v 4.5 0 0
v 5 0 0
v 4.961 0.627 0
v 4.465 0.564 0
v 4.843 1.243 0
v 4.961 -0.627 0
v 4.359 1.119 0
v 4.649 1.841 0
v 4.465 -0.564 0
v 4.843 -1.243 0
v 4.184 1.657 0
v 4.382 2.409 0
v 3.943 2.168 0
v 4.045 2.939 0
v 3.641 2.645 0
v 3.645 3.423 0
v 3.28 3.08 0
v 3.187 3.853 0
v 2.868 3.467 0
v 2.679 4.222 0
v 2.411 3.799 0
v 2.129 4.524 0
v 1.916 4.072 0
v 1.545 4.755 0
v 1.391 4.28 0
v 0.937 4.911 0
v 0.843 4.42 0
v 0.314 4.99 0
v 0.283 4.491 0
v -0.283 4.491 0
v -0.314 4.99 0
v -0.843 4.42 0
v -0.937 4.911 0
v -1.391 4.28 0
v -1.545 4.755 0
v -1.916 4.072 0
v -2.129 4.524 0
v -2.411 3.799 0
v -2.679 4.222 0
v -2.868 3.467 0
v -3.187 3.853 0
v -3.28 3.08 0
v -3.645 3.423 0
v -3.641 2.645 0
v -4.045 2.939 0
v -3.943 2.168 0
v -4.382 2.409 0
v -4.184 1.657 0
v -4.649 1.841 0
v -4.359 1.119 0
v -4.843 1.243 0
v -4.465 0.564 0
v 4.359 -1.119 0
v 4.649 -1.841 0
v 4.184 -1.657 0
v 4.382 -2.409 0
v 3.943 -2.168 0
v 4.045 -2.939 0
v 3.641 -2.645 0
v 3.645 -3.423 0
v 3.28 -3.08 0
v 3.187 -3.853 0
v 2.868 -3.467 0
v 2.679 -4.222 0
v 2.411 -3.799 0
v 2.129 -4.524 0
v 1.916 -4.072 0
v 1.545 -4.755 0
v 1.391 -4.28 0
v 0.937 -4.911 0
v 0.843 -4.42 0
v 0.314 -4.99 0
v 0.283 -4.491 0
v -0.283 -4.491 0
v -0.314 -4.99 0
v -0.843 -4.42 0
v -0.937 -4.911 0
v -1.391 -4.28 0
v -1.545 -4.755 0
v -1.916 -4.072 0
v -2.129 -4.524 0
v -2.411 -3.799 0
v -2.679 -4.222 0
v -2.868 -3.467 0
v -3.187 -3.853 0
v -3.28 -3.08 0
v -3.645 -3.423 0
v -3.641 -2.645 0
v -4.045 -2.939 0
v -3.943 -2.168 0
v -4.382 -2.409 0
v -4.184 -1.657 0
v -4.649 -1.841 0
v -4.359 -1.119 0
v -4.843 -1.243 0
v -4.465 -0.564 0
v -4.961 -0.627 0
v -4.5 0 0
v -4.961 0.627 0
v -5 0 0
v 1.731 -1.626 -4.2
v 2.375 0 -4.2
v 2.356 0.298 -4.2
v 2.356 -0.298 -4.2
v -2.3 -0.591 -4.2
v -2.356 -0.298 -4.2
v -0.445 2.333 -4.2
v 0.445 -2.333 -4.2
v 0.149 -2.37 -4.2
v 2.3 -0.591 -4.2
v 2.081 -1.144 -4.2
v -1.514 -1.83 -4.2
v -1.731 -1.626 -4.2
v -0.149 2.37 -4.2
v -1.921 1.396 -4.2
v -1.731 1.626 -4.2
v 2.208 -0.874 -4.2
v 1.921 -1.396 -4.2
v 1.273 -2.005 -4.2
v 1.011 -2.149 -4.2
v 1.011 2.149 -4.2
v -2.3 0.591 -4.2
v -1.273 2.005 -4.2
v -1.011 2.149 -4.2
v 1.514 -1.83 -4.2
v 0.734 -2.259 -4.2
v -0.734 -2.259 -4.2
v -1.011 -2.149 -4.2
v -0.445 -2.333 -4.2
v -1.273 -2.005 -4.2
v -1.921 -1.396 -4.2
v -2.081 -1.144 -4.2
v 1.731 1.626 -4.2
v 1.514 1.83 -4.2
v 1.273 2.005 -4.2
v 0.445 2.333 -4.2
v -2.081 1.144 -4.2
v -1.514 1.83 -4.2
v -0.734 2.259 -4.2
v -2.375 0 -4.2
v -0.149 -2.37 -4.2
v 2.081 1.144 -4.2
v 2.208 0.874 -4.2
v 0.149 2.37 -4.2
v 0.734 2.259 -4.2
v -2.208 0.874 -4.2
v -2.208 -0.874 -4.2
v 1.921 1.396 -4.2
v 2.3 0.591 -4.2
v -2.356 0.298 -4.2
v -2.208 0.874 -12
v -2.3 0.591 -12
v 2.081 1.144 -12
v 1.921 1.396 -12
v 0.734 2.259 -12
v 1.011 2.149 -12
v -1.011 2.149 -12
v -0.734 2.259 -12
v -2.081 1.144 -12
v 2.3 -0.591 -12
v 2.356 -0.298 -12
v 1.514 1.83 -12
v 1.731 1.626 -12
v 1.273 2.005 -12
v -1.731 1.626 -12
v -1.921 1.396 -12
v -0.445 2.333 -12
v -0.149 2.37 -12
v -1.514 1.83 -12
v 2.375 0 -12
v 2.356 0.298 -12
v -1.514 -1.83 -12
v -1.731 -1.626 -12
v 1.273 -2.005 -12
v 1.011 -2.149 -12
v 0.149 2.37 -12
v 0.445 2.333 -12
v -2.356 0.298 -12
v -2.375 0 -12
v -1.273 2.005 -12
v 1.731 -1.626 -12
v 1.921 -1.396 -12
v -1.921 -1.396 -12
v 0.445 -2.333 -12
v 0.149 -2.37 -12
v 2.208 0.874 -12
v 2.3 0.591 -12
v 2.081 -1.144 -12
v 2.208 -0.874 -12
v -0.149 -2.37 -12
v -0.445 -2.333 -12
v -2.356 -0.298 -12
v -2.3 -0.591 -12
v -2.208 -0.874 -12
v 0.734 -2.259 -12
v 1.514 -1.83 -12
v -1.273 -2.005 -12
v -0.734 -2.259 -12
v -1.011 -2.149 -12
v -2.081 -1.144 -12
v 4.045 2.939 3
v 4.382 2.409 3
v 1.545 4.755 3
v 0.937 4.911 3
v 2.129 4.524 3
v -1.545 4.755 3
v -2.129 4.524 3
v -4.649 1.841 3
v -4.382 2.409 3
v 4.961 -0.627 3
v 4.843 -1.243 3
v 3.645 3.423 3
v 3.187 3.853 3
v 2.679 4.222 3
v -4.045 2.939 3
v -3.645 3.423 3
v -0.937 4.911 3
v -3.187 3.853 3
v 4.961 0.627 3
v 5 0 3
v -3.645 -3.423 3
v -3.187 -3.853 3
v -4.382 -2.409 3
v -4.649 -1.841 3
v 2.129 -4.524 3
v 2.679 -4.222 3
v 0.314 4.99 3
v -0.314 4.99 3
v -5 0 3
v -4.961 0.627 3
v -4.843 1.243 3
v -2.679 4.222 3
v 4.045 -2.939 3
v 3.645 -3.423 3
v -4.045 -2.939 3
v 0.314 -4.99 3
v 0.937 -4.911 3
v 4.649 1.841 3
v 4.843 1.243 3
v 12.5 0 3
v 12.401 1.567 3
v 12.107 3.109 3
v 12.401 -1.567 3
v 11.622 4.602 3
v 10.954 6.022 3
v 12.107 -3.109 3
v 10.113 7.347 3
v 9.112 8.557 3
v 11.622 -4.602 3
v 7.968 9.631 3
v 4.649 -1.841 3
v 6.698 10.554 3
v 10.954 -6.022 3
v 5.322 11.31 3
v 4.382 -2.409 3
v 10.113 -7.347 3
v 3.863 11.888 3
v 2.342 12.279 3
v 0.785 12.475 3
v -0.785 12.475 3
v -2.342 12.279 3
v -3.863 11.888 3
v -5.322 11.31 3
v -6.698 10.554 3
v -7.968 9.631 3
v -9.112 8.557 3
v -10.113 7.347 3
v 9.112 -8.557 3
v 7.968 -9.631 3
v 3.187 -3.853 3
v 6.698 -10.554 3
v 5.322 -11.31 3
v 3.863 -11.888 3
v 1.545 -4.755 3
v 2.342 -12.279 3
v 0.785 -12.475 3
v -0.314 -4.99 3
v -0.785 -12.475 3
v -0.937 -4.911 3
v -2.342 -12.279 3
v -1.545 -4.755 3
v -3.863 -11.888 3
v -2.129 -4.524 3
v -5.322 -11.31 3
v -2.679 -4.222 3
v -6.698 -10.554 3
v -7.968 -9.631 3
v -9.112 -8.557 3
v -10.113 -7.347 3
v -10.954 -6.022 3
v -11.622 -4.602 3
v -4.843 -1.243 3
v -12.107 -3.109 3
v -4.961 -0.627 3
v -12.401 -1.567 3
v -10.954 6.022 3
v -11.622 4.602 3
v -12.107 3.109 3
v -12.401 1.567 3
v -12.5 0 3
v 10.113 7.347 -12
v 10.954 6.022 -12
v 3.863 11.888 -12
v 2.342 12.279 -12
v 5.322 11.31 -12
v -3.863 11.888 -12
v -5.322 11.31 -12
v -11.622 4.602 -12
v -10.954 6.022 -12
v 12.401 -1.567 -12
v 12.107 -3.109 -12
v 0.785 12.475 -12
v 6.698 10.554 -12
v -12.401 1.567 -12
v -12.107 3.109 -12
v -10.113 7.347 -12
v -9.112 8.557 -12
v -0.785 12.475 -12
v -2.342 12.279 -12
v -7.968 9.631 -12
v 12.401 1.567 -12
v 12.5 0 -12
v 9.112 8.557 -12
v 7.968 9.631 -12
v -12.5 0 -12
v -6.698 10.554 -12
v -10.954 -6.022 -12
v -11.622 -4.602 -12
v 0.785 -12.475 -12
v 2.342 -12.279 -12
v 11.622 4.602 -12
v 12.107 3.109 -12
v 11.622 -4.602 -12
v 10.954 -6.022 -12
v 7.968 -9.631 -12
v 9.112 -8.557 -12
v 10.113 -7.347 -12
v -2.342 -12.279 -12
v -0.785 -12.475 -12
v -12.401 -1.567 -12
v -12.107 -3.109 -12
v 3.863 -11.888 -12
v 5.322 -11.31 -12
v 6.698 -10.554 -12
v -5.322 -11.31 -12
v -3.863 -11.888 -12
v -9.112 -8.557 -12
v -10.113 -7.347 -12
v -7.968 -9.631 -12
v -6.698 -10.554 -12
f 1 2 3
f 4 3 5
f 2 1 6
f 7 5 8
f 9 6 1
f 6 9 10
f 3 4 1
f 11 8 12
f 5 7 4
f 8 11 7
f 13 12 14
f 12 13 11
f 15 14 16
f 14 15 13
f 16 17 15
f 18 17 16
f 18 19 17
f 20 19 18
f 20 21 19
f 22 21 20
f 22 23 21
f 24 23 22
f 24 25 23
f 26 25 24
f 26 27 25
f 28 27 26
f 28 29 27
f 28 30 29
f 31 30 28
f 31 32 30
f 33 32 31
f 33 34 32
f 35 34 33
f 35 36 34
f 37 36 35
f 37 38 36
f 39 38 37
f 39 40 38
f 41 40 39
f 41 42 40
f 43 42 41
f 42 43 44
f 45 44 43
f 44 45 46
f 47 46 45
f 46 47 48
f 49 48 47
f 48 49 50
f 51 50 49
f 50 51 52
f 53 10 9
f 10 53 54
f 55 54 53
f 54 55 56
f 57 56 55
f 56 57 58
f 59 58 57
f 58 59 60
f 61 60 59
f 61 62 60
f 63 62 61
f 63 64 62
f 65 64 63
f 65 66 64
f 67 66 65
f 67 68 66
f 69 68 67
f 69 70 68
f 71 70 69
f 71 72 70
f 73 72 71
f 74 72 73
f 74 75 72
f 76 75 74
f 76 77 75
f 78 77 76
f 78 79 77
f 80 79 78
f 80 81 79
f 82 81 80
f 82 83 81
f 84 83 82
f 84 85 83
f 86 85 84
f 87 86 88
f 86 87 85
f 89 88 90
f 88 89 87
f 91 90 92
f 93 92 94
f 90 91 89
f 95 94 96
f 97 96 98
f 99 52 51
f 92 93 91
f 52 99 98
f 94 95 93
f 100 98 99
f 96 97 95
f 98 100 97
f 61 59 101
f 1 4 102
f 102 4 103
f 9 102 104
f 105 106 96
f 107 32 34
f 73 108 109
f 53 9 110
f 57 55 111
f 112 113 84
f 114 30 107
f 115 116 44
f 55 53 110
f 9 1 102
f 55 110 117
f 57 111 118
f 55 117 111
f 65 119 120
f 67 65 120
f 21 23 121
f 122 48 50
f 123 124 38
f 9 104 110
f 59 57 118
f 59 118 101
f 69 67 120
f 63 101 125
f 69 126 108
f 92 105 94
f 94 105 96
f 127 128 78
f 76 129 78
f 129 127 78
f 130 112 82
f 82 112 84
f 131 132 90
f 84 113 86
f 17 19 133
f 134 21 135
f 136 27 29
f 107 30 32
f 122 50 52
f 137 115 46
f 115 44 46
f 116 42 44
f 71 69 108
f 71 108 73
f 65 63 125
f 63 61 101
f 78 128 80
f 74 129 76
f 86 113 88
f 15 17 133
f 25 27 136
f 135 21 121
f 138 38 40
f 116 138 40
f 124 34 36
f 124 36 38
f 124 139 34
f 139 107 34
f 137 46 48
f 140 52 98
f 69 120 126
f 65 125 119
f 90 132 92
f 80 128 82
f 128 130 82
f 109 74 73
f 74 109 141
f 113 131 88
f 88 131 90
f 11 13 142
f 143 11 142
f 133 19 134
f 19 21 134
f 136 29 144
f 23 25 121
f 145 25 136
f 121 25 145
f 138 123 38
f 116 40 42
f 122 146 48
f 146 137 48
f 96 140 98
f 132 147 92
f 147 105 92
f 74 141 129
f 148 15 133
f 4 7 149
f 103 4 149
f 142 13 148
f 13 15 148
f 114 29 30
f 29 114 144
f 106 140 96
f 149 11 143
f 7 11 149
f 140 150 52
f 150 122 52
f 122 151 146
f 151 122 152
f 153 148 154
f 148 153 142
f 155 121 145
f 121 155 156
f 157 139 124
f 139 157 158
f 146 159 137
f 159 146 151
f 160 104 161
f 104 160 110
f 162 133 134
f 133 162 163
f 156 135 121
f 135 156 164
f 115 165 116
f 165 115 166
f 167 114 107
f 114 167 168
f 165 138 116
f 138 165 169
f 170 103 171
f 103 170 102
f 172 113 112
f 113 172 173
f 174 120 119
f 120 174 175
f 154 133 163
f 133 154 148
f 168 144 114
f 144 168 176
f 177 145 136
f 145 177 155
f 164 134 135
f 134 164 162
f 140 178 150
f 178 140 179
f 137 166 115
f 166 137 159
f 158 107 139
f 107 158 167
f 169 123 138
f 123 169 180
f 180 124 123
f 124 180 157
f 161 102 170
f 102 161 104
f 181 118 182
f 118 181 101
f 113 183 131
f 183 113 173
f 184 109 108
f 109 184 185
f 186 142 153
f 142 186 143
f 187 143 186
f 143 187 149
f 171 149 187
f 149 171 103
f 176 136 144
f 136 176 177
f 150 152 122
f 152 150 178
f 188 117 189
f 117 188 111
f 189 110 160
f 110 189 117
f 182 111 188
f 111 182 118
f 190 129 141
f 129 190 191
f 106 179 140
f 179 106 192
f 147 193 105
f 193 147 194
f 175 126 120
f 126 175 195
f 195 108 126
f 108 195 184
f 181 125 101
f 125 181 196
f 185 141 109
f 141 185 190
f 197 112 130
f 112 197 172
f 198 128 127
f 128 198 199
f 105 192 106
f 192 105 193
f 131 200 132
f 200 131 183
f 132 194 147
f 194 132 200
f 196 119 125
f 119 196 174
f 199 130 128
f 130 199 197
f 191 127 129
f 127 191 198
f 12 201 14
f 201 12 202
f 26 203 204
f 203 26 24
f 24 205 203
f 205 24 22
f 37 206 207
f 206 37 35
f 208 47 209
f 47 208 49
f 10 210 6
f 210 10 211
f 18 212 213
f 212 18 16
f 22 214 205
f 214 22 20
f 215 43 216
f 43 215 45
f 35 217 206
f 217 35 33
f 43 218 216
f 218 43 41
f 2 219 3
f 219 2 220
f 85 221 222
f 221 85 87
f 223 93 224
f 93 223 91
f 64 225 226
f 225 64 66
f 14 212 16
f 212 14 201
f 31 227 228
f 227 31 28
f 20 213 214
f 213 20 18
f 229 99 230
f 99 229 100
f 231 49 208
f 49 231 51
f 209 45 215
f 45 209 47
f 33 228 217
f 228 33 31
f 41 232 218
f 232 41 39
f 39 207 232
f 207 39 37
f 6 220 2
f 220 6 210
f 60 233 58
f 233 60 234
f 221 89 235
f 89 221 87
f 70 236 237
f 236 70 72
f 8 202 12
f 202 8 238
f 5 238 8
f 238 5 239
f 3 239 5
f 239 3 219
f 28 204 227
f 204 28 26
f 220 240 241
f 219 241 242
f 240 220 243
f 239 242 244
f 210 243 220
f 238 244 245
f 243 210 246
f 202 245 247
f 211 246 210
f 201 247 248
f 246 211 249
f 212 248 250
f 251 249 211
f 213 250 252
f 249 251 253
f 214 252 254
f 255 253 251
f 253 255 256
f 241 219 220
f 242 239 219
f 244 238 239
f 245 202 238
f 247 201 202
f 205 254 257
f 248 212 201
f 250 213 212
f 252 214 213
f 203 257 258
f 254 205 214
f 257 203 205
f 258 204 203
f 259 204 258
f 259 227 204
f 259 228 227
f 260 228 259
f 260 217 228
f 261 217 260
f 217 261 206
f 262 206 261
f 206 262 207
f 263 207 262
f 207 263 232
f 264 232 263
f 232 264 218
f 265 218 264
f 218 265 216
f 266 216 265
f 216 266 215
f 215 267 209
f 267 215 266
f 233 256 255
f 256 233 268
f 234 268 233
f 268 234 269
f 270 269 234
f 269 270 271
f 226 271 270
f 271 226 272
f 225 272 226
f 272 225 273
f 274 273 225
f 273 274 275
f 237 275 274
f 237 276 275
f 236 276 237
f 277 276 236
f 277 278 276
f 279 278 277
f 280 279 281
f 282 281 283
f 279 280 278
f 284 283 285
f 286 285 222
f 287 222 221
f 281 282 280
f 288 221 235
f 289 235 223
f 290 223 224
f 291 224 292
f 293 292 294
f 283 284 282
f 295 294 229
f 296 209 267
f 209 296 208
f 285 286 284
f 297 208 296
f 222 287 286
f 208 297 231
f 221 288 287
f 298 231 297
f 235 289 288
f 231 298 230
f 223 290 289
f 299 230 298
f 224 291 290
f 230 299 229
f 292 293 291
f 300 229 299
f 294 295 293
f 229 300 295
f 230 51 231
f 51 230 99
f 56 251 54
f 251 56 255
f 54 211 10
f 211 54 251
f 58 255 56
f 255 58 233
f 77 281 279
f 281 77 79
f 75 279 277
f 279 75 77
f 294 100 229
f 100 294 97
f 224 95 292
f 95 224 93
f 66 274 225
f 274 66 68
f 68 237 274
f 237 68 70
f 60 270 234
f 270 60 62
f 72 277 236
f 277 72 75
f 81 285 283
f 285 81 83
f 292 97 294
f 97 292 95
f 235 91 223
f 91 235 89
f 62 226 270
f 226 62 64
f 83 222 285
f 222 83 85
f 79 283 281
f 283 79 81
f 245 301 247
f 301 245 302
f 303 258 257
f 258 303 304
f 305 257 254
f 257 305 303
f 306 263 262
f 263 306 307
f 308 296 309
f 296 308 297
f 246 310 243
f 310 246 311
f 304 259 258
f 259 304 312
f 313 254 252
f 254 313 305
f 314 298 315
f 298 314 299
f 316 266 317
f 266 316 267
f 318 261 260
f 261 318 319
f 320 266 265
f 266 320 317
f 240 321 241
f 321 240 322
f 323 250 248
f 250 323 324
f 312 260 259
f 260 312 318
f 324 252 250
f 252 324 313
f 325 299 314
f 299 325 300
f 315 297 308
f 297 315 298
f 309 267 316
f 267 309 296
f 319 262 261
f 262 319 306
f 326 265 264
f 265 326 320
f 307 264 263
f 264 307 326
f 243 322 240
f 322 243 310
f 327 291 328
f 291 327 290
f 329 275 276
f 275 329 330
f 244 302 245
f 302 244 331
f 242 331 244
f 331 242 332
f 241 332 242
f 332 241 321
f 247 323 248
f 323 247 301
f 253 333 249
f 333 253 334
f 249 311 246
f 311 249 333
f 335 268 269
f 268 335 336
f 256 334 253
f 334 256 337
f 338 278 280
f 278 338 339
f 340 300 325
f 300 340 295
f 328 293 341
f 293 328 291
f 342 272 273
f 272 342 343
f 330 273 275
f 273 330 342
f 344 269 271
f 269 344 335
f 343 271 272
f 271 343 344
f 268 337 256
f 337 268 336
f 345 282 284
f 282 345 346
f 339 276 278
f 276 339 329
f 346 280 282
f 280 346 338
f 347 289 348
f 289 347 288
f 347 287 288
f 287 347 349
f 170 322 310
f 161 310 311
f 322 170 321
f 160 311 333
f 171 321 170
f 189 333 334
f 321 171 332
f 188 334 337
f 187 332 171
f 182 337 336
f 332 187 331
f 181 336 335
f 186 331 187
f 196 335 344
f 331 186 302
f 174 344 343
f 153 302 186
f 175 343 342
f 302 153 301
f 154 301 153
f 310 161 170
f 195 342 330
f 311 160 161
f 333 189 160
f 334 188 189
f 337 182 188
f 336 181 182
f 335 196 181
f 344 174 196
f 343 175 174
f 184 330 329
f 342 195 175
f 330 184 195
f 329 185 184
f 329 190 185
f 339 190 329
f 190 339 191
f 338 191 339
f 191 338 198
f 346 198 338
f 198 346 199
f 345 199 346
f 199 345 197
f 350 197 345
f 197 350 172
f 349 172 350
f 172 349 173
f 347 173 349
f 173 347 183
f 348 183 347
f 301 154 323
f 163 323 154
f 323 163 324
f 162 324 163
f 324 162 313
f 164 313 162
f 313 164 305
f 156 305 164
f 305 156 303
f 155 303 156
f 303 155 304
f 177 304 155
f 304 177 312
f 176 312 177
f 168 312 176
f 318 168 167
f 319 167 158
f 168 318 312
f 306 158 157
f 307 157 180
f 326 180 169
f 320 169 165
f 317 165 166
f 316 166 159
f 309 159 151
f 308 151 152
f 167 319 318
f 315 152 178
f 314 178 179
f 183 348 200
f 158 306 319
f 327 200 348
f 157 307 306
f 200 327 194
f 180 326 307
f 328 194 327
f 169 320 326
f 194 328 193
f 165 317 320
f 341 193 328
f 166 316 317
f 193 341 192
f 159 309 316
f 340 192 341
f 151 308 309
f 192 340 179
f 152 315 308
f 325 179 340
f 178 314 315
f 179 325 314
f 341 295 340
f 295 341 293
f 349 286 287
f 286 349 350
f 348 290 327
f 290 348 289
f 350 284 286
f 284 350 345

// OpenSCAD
$fn = 50;


difference() {
	union() {
		translate(v = [0, 0, -12.0000000000]) {
			cylinder(h = 15, r = 12.5000000000);
		}
	}
	union() {
		translate(v = [0, 0, 0]) {
			rotate(a = [0, 0, 0]) {
				difference() {
					union() {
						translate(v = [0, 0, -15.0000000000]) {
							cylinder(h = 15, r = 2.2500000000);
						}
						translate(v = [0, 0, -4.2000000000]) {
							cylinder(h = 4.2000000000, r1 = 2.3750000000, r2 = 4.5000000000);
						}
						translate(v = [0, 0, -15.0000000000]) {
							cylinder(h = 15, r = 2.3750000000);
						}
						translate(v = [0, 0, -15.0000000000]) {
							cylinder(h = 15, r = 2.2500000000);
						}
					}
					union();
				}
			}
		}
		#cylinder(h = 3, r = 5.0000000000);
	}
}
